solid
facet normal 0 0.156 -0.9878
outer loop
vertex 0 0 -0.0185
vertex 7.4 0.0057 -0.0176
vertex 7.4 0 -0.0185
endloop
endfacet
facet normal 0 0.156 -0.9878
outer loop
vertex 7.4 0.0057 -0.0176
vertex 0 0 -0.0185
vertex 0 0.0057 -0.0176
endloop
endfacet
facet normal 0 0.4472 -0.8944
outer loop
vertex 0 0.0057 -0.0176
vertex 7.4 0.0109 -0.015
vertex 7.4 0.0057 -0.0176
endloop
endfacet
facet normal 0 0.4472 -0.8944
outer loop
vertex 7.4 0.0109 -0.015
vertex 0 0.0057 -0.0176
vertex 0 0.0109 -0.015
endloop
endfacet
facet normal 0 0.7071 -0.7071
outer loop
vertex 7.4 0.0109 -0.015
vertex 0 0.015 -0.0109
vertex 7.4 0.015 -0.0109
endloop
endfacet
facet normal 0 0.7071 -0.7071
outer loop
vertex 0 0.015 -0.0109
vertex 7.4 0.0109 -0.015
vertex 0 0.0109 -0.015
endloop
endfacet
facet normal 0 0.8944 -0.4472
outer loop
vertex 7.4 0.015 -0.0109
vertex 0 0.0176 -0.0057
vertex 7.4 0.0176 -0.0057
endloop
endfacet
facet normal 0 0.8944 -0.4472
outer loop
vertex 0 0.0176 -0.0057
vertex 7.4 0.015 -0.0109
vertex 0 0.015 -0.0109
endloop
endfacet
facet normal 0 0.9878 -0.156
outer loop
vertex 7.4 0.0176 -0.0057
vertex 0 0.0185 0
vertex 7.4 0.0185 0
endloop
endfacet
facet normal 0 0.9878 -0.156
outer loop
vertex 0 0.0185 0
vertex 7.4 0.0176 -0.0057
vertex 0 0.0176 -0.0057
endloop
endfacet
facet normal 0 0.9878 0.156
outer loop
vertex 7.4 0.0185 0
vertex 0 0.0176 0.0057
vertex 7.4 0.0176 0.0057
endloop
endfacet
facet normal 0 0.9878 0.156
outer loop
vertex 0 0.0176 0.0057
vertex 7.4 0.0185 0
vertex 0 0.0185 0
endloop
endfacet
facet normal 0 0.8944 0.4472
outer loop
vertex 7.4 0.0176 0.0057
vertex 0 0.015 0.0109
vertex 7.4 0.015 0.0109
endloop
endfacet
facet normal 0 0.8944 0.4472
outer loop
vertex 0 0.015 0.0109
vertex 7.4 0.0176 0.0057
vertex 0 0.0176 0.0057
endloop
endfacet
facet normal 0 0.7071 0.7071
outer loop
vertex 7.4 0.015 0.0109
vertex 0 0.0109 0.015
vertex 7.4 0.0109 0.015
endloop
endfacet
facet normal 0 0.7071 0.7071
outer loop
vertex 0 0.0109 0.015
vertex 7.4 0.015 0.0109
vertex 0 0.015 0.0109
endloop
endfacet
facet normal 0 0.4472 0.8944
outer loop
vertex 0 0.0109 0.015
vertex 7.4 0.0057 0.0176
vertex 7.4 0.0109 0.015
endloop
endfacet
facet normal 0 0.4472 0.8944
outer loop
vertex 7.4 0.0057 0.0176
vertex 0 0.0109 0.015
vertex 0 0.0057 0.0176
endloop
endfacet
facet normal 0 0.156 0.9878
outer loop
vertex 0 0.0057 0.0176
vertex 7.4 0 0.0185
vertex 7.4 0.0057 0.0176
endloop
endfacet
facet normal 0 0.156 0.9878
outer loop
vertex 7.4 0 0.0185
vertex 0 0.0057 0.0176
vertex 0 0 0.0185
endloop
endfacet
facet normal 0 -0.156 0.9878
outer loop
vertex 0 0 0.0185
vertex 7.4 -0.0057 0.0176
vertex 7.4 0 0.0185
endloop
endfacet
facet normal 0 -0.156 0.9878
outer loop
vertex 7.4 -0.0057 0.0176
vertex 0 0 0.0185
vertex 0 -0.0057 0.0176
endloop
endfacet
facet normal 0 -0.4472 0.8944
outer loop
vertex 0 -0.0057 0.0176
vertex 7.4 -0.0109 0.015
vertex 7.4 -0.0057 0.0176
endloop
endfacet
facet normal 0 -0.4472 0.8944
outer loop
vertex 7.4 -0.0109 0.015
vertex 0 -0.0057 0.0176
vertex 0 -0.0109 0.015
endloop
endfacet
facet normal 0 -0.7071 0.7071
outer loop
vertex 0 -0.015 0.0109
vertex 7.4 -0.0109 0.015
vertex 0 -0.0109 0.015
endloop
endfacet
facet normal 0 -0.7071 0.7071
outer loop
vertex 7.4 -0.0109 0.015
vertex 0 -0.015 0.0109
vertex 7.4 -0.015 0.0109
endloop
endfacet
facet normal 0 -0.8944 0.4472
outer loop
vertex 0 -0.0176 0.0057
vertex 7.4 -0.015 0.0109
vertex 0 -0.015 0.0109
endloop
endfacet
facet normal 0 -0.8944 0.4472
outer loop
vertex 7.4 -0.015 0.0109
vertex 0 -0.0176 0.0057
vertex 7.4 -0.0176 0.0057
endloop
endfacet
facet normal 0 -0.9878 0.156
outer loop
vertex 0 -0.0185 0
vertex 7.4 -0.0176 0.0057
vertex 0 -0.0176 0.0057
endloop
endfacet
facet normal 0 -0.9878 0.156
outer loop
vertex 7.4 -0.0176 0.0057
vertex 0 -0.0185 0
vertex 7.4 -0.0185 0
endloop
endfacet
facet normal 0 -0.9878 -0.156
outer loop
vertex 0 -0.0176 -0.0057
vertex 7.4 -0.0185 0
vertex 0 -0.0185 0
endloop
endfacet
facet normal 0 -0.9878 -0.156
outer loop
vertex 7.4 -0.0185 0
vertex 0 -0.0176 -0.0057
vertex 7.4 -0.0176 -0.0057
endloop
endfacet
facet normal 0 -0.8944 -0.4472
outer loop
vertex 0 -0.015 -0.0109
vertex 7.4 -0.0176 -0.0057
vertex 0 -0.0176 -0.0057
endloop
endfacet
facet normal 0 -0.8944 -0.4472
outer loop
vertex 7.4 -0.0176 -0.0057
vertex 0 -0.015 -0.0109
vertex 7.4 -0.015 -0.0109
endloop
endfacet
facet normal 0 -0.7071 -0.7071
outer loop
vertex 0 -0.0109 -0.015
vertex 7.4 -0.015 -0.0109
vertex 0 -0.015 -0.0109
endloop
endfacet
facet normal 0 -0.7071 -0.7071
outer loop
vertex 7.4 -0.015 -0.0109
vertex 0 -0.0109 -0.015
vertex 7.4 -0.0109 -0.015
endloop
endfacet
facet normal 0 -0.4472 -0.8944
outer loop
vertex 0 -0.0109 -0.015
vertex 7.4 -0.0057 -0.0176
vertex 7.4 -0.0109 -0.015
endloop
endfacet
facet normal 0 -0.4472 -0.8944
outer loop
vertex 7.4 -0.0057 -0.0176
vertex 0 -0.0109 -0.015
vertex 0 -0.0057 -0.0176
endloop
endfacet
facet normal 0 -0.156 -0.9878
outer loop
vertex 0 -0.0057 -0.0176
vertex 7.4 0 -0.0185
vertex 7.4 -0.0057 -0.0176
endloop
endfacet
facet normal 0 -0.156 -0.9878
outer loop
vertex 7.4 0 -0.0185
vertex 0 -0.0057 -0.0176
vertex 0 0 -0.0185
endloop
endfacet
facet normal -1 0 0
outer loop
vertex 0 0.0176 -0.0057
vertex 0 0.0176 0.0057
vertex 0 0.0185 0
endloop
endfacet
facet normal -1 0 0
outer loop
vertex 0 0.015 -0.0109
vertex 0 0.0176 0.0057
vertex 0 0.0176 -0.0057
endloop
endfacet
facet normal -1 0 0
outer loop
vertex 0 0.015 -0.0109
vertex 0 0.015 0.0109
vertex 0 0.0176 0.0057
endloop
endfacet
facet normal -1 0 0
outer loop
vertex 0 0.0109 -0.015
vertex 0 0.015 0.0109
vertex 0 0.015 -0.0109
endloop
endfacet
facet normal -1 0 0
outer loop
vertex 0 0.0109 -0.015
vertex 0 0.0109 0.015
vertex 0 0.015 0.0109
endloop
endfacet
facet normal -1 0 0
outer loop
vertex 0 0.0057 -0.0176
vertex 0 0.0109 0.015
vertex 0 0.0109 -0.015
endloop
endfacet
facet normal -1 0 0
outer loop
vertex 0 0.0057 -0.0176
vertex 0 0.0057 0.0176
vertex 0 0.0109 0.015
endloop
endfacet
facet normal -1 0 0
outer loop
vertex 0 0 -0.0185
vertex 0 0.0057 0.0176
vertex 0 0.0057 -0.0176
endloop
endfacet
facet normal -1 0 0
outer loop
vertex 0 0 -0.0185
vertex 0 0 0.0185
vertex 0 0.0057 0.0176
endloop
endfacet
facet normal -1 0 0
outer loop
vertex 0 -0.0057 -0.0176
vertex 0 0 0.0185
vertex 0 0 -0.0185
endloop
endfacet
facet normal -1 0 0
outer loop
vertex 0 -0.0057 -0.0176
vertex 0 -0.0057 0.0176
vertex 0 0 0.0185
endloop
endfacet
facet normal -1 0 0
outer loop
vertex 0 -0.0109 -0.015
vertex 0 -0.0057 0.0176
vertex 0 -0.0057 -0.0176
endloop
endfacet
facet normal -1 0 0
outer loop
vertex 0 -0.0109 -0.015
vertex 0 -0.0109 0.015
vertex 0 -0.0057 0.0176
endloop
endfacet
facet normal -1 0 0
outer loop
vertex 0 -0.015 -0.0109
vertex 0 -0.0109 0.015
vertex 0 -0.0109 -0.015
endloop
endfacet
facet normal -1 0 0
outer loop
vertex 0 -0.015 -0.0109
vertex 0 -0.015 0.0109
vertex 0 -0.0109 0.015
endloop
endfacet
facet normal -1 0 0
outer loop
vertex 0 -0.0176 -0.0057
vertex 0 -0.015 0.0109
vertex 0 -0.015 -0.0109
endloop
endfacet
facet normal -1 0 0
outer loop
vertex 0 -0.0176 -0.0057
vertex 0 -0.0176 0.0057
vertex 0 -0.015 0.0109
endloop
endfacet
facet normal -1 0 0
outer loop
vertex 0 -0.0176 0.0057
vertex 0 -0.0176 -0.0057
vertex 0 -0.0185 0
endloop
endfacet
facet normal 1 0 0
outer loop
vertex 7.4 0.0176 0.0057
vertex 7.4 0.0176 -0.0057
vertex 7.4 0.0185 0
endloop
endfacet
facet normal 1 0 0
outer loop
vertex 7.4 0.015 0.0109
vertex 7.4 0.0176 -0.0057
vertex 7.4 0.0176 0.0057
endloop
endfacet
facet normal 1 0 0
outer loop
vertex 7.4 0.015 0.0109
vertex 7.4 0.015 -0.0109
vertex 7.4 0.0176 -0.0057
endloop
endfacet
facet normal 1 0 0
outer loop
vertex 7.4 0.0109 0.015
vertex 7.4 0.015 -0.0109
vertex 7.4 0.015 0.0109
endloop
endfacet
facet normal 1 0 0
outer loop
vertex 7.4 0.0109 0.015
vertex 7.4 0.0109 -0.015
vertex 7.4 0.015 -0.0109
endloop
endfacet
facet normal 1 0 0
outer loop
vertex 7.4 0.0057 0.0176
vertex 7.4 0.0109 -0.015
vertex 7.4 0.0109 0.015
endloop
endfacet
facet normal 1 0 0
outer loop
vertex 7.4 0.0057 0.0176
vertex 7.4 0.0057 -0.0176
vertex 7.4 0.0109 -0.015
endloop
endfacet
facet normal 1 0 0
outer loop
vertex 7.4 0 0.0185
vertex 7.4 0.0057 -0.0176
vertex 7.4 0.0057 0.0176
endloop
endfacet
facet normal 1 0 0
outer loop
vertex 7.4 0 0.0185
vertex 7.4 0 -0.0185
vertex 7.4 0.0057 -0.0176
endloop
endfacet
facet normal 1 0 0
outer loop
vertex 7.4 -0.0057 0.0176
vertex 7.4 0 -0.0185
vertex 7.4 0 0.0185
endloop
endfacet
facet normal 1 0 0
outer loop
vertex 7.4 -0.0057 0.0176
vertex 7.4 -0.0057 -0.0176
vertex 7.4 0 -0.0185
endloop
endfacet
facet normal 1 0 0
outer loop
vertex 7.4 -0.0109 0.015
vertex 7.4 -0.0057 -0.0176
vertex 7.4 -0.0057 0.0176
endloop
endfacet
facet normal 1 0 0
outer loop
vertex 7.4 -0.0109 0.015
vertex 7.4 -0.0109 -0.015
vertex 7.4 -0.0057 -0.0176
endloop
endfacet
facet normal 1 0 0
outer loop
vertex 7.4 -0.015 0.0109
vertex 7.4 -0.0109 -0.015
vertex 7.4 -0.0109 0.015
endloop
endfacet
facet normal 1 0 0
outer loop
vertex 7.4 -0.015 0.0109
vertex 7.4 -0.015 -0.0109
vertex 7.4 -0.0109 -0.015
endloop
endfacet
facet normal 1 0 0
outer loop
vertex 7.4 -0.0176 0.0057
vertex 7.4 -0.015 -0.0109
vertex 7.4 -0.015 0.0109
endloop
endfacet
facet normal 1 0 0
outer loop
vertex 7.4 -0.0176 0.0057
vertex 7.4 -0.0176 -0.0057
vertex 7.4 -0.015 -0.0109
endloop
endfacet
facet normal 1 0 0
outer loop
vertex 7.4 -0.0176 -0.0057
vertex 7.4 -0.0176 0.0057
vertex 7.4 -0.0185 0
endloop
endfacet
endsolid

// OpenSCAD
//union(){

//difference(){

rotate([0,90,0])
translate([0,0,7.4/2])   
cylinder(h=7.4,r=0.0185,center=true,$fn=20);


//cylinder(h=7.5,r=0.0185-6.1503e-04, center = true, $fn=20); 

//} 
//}
